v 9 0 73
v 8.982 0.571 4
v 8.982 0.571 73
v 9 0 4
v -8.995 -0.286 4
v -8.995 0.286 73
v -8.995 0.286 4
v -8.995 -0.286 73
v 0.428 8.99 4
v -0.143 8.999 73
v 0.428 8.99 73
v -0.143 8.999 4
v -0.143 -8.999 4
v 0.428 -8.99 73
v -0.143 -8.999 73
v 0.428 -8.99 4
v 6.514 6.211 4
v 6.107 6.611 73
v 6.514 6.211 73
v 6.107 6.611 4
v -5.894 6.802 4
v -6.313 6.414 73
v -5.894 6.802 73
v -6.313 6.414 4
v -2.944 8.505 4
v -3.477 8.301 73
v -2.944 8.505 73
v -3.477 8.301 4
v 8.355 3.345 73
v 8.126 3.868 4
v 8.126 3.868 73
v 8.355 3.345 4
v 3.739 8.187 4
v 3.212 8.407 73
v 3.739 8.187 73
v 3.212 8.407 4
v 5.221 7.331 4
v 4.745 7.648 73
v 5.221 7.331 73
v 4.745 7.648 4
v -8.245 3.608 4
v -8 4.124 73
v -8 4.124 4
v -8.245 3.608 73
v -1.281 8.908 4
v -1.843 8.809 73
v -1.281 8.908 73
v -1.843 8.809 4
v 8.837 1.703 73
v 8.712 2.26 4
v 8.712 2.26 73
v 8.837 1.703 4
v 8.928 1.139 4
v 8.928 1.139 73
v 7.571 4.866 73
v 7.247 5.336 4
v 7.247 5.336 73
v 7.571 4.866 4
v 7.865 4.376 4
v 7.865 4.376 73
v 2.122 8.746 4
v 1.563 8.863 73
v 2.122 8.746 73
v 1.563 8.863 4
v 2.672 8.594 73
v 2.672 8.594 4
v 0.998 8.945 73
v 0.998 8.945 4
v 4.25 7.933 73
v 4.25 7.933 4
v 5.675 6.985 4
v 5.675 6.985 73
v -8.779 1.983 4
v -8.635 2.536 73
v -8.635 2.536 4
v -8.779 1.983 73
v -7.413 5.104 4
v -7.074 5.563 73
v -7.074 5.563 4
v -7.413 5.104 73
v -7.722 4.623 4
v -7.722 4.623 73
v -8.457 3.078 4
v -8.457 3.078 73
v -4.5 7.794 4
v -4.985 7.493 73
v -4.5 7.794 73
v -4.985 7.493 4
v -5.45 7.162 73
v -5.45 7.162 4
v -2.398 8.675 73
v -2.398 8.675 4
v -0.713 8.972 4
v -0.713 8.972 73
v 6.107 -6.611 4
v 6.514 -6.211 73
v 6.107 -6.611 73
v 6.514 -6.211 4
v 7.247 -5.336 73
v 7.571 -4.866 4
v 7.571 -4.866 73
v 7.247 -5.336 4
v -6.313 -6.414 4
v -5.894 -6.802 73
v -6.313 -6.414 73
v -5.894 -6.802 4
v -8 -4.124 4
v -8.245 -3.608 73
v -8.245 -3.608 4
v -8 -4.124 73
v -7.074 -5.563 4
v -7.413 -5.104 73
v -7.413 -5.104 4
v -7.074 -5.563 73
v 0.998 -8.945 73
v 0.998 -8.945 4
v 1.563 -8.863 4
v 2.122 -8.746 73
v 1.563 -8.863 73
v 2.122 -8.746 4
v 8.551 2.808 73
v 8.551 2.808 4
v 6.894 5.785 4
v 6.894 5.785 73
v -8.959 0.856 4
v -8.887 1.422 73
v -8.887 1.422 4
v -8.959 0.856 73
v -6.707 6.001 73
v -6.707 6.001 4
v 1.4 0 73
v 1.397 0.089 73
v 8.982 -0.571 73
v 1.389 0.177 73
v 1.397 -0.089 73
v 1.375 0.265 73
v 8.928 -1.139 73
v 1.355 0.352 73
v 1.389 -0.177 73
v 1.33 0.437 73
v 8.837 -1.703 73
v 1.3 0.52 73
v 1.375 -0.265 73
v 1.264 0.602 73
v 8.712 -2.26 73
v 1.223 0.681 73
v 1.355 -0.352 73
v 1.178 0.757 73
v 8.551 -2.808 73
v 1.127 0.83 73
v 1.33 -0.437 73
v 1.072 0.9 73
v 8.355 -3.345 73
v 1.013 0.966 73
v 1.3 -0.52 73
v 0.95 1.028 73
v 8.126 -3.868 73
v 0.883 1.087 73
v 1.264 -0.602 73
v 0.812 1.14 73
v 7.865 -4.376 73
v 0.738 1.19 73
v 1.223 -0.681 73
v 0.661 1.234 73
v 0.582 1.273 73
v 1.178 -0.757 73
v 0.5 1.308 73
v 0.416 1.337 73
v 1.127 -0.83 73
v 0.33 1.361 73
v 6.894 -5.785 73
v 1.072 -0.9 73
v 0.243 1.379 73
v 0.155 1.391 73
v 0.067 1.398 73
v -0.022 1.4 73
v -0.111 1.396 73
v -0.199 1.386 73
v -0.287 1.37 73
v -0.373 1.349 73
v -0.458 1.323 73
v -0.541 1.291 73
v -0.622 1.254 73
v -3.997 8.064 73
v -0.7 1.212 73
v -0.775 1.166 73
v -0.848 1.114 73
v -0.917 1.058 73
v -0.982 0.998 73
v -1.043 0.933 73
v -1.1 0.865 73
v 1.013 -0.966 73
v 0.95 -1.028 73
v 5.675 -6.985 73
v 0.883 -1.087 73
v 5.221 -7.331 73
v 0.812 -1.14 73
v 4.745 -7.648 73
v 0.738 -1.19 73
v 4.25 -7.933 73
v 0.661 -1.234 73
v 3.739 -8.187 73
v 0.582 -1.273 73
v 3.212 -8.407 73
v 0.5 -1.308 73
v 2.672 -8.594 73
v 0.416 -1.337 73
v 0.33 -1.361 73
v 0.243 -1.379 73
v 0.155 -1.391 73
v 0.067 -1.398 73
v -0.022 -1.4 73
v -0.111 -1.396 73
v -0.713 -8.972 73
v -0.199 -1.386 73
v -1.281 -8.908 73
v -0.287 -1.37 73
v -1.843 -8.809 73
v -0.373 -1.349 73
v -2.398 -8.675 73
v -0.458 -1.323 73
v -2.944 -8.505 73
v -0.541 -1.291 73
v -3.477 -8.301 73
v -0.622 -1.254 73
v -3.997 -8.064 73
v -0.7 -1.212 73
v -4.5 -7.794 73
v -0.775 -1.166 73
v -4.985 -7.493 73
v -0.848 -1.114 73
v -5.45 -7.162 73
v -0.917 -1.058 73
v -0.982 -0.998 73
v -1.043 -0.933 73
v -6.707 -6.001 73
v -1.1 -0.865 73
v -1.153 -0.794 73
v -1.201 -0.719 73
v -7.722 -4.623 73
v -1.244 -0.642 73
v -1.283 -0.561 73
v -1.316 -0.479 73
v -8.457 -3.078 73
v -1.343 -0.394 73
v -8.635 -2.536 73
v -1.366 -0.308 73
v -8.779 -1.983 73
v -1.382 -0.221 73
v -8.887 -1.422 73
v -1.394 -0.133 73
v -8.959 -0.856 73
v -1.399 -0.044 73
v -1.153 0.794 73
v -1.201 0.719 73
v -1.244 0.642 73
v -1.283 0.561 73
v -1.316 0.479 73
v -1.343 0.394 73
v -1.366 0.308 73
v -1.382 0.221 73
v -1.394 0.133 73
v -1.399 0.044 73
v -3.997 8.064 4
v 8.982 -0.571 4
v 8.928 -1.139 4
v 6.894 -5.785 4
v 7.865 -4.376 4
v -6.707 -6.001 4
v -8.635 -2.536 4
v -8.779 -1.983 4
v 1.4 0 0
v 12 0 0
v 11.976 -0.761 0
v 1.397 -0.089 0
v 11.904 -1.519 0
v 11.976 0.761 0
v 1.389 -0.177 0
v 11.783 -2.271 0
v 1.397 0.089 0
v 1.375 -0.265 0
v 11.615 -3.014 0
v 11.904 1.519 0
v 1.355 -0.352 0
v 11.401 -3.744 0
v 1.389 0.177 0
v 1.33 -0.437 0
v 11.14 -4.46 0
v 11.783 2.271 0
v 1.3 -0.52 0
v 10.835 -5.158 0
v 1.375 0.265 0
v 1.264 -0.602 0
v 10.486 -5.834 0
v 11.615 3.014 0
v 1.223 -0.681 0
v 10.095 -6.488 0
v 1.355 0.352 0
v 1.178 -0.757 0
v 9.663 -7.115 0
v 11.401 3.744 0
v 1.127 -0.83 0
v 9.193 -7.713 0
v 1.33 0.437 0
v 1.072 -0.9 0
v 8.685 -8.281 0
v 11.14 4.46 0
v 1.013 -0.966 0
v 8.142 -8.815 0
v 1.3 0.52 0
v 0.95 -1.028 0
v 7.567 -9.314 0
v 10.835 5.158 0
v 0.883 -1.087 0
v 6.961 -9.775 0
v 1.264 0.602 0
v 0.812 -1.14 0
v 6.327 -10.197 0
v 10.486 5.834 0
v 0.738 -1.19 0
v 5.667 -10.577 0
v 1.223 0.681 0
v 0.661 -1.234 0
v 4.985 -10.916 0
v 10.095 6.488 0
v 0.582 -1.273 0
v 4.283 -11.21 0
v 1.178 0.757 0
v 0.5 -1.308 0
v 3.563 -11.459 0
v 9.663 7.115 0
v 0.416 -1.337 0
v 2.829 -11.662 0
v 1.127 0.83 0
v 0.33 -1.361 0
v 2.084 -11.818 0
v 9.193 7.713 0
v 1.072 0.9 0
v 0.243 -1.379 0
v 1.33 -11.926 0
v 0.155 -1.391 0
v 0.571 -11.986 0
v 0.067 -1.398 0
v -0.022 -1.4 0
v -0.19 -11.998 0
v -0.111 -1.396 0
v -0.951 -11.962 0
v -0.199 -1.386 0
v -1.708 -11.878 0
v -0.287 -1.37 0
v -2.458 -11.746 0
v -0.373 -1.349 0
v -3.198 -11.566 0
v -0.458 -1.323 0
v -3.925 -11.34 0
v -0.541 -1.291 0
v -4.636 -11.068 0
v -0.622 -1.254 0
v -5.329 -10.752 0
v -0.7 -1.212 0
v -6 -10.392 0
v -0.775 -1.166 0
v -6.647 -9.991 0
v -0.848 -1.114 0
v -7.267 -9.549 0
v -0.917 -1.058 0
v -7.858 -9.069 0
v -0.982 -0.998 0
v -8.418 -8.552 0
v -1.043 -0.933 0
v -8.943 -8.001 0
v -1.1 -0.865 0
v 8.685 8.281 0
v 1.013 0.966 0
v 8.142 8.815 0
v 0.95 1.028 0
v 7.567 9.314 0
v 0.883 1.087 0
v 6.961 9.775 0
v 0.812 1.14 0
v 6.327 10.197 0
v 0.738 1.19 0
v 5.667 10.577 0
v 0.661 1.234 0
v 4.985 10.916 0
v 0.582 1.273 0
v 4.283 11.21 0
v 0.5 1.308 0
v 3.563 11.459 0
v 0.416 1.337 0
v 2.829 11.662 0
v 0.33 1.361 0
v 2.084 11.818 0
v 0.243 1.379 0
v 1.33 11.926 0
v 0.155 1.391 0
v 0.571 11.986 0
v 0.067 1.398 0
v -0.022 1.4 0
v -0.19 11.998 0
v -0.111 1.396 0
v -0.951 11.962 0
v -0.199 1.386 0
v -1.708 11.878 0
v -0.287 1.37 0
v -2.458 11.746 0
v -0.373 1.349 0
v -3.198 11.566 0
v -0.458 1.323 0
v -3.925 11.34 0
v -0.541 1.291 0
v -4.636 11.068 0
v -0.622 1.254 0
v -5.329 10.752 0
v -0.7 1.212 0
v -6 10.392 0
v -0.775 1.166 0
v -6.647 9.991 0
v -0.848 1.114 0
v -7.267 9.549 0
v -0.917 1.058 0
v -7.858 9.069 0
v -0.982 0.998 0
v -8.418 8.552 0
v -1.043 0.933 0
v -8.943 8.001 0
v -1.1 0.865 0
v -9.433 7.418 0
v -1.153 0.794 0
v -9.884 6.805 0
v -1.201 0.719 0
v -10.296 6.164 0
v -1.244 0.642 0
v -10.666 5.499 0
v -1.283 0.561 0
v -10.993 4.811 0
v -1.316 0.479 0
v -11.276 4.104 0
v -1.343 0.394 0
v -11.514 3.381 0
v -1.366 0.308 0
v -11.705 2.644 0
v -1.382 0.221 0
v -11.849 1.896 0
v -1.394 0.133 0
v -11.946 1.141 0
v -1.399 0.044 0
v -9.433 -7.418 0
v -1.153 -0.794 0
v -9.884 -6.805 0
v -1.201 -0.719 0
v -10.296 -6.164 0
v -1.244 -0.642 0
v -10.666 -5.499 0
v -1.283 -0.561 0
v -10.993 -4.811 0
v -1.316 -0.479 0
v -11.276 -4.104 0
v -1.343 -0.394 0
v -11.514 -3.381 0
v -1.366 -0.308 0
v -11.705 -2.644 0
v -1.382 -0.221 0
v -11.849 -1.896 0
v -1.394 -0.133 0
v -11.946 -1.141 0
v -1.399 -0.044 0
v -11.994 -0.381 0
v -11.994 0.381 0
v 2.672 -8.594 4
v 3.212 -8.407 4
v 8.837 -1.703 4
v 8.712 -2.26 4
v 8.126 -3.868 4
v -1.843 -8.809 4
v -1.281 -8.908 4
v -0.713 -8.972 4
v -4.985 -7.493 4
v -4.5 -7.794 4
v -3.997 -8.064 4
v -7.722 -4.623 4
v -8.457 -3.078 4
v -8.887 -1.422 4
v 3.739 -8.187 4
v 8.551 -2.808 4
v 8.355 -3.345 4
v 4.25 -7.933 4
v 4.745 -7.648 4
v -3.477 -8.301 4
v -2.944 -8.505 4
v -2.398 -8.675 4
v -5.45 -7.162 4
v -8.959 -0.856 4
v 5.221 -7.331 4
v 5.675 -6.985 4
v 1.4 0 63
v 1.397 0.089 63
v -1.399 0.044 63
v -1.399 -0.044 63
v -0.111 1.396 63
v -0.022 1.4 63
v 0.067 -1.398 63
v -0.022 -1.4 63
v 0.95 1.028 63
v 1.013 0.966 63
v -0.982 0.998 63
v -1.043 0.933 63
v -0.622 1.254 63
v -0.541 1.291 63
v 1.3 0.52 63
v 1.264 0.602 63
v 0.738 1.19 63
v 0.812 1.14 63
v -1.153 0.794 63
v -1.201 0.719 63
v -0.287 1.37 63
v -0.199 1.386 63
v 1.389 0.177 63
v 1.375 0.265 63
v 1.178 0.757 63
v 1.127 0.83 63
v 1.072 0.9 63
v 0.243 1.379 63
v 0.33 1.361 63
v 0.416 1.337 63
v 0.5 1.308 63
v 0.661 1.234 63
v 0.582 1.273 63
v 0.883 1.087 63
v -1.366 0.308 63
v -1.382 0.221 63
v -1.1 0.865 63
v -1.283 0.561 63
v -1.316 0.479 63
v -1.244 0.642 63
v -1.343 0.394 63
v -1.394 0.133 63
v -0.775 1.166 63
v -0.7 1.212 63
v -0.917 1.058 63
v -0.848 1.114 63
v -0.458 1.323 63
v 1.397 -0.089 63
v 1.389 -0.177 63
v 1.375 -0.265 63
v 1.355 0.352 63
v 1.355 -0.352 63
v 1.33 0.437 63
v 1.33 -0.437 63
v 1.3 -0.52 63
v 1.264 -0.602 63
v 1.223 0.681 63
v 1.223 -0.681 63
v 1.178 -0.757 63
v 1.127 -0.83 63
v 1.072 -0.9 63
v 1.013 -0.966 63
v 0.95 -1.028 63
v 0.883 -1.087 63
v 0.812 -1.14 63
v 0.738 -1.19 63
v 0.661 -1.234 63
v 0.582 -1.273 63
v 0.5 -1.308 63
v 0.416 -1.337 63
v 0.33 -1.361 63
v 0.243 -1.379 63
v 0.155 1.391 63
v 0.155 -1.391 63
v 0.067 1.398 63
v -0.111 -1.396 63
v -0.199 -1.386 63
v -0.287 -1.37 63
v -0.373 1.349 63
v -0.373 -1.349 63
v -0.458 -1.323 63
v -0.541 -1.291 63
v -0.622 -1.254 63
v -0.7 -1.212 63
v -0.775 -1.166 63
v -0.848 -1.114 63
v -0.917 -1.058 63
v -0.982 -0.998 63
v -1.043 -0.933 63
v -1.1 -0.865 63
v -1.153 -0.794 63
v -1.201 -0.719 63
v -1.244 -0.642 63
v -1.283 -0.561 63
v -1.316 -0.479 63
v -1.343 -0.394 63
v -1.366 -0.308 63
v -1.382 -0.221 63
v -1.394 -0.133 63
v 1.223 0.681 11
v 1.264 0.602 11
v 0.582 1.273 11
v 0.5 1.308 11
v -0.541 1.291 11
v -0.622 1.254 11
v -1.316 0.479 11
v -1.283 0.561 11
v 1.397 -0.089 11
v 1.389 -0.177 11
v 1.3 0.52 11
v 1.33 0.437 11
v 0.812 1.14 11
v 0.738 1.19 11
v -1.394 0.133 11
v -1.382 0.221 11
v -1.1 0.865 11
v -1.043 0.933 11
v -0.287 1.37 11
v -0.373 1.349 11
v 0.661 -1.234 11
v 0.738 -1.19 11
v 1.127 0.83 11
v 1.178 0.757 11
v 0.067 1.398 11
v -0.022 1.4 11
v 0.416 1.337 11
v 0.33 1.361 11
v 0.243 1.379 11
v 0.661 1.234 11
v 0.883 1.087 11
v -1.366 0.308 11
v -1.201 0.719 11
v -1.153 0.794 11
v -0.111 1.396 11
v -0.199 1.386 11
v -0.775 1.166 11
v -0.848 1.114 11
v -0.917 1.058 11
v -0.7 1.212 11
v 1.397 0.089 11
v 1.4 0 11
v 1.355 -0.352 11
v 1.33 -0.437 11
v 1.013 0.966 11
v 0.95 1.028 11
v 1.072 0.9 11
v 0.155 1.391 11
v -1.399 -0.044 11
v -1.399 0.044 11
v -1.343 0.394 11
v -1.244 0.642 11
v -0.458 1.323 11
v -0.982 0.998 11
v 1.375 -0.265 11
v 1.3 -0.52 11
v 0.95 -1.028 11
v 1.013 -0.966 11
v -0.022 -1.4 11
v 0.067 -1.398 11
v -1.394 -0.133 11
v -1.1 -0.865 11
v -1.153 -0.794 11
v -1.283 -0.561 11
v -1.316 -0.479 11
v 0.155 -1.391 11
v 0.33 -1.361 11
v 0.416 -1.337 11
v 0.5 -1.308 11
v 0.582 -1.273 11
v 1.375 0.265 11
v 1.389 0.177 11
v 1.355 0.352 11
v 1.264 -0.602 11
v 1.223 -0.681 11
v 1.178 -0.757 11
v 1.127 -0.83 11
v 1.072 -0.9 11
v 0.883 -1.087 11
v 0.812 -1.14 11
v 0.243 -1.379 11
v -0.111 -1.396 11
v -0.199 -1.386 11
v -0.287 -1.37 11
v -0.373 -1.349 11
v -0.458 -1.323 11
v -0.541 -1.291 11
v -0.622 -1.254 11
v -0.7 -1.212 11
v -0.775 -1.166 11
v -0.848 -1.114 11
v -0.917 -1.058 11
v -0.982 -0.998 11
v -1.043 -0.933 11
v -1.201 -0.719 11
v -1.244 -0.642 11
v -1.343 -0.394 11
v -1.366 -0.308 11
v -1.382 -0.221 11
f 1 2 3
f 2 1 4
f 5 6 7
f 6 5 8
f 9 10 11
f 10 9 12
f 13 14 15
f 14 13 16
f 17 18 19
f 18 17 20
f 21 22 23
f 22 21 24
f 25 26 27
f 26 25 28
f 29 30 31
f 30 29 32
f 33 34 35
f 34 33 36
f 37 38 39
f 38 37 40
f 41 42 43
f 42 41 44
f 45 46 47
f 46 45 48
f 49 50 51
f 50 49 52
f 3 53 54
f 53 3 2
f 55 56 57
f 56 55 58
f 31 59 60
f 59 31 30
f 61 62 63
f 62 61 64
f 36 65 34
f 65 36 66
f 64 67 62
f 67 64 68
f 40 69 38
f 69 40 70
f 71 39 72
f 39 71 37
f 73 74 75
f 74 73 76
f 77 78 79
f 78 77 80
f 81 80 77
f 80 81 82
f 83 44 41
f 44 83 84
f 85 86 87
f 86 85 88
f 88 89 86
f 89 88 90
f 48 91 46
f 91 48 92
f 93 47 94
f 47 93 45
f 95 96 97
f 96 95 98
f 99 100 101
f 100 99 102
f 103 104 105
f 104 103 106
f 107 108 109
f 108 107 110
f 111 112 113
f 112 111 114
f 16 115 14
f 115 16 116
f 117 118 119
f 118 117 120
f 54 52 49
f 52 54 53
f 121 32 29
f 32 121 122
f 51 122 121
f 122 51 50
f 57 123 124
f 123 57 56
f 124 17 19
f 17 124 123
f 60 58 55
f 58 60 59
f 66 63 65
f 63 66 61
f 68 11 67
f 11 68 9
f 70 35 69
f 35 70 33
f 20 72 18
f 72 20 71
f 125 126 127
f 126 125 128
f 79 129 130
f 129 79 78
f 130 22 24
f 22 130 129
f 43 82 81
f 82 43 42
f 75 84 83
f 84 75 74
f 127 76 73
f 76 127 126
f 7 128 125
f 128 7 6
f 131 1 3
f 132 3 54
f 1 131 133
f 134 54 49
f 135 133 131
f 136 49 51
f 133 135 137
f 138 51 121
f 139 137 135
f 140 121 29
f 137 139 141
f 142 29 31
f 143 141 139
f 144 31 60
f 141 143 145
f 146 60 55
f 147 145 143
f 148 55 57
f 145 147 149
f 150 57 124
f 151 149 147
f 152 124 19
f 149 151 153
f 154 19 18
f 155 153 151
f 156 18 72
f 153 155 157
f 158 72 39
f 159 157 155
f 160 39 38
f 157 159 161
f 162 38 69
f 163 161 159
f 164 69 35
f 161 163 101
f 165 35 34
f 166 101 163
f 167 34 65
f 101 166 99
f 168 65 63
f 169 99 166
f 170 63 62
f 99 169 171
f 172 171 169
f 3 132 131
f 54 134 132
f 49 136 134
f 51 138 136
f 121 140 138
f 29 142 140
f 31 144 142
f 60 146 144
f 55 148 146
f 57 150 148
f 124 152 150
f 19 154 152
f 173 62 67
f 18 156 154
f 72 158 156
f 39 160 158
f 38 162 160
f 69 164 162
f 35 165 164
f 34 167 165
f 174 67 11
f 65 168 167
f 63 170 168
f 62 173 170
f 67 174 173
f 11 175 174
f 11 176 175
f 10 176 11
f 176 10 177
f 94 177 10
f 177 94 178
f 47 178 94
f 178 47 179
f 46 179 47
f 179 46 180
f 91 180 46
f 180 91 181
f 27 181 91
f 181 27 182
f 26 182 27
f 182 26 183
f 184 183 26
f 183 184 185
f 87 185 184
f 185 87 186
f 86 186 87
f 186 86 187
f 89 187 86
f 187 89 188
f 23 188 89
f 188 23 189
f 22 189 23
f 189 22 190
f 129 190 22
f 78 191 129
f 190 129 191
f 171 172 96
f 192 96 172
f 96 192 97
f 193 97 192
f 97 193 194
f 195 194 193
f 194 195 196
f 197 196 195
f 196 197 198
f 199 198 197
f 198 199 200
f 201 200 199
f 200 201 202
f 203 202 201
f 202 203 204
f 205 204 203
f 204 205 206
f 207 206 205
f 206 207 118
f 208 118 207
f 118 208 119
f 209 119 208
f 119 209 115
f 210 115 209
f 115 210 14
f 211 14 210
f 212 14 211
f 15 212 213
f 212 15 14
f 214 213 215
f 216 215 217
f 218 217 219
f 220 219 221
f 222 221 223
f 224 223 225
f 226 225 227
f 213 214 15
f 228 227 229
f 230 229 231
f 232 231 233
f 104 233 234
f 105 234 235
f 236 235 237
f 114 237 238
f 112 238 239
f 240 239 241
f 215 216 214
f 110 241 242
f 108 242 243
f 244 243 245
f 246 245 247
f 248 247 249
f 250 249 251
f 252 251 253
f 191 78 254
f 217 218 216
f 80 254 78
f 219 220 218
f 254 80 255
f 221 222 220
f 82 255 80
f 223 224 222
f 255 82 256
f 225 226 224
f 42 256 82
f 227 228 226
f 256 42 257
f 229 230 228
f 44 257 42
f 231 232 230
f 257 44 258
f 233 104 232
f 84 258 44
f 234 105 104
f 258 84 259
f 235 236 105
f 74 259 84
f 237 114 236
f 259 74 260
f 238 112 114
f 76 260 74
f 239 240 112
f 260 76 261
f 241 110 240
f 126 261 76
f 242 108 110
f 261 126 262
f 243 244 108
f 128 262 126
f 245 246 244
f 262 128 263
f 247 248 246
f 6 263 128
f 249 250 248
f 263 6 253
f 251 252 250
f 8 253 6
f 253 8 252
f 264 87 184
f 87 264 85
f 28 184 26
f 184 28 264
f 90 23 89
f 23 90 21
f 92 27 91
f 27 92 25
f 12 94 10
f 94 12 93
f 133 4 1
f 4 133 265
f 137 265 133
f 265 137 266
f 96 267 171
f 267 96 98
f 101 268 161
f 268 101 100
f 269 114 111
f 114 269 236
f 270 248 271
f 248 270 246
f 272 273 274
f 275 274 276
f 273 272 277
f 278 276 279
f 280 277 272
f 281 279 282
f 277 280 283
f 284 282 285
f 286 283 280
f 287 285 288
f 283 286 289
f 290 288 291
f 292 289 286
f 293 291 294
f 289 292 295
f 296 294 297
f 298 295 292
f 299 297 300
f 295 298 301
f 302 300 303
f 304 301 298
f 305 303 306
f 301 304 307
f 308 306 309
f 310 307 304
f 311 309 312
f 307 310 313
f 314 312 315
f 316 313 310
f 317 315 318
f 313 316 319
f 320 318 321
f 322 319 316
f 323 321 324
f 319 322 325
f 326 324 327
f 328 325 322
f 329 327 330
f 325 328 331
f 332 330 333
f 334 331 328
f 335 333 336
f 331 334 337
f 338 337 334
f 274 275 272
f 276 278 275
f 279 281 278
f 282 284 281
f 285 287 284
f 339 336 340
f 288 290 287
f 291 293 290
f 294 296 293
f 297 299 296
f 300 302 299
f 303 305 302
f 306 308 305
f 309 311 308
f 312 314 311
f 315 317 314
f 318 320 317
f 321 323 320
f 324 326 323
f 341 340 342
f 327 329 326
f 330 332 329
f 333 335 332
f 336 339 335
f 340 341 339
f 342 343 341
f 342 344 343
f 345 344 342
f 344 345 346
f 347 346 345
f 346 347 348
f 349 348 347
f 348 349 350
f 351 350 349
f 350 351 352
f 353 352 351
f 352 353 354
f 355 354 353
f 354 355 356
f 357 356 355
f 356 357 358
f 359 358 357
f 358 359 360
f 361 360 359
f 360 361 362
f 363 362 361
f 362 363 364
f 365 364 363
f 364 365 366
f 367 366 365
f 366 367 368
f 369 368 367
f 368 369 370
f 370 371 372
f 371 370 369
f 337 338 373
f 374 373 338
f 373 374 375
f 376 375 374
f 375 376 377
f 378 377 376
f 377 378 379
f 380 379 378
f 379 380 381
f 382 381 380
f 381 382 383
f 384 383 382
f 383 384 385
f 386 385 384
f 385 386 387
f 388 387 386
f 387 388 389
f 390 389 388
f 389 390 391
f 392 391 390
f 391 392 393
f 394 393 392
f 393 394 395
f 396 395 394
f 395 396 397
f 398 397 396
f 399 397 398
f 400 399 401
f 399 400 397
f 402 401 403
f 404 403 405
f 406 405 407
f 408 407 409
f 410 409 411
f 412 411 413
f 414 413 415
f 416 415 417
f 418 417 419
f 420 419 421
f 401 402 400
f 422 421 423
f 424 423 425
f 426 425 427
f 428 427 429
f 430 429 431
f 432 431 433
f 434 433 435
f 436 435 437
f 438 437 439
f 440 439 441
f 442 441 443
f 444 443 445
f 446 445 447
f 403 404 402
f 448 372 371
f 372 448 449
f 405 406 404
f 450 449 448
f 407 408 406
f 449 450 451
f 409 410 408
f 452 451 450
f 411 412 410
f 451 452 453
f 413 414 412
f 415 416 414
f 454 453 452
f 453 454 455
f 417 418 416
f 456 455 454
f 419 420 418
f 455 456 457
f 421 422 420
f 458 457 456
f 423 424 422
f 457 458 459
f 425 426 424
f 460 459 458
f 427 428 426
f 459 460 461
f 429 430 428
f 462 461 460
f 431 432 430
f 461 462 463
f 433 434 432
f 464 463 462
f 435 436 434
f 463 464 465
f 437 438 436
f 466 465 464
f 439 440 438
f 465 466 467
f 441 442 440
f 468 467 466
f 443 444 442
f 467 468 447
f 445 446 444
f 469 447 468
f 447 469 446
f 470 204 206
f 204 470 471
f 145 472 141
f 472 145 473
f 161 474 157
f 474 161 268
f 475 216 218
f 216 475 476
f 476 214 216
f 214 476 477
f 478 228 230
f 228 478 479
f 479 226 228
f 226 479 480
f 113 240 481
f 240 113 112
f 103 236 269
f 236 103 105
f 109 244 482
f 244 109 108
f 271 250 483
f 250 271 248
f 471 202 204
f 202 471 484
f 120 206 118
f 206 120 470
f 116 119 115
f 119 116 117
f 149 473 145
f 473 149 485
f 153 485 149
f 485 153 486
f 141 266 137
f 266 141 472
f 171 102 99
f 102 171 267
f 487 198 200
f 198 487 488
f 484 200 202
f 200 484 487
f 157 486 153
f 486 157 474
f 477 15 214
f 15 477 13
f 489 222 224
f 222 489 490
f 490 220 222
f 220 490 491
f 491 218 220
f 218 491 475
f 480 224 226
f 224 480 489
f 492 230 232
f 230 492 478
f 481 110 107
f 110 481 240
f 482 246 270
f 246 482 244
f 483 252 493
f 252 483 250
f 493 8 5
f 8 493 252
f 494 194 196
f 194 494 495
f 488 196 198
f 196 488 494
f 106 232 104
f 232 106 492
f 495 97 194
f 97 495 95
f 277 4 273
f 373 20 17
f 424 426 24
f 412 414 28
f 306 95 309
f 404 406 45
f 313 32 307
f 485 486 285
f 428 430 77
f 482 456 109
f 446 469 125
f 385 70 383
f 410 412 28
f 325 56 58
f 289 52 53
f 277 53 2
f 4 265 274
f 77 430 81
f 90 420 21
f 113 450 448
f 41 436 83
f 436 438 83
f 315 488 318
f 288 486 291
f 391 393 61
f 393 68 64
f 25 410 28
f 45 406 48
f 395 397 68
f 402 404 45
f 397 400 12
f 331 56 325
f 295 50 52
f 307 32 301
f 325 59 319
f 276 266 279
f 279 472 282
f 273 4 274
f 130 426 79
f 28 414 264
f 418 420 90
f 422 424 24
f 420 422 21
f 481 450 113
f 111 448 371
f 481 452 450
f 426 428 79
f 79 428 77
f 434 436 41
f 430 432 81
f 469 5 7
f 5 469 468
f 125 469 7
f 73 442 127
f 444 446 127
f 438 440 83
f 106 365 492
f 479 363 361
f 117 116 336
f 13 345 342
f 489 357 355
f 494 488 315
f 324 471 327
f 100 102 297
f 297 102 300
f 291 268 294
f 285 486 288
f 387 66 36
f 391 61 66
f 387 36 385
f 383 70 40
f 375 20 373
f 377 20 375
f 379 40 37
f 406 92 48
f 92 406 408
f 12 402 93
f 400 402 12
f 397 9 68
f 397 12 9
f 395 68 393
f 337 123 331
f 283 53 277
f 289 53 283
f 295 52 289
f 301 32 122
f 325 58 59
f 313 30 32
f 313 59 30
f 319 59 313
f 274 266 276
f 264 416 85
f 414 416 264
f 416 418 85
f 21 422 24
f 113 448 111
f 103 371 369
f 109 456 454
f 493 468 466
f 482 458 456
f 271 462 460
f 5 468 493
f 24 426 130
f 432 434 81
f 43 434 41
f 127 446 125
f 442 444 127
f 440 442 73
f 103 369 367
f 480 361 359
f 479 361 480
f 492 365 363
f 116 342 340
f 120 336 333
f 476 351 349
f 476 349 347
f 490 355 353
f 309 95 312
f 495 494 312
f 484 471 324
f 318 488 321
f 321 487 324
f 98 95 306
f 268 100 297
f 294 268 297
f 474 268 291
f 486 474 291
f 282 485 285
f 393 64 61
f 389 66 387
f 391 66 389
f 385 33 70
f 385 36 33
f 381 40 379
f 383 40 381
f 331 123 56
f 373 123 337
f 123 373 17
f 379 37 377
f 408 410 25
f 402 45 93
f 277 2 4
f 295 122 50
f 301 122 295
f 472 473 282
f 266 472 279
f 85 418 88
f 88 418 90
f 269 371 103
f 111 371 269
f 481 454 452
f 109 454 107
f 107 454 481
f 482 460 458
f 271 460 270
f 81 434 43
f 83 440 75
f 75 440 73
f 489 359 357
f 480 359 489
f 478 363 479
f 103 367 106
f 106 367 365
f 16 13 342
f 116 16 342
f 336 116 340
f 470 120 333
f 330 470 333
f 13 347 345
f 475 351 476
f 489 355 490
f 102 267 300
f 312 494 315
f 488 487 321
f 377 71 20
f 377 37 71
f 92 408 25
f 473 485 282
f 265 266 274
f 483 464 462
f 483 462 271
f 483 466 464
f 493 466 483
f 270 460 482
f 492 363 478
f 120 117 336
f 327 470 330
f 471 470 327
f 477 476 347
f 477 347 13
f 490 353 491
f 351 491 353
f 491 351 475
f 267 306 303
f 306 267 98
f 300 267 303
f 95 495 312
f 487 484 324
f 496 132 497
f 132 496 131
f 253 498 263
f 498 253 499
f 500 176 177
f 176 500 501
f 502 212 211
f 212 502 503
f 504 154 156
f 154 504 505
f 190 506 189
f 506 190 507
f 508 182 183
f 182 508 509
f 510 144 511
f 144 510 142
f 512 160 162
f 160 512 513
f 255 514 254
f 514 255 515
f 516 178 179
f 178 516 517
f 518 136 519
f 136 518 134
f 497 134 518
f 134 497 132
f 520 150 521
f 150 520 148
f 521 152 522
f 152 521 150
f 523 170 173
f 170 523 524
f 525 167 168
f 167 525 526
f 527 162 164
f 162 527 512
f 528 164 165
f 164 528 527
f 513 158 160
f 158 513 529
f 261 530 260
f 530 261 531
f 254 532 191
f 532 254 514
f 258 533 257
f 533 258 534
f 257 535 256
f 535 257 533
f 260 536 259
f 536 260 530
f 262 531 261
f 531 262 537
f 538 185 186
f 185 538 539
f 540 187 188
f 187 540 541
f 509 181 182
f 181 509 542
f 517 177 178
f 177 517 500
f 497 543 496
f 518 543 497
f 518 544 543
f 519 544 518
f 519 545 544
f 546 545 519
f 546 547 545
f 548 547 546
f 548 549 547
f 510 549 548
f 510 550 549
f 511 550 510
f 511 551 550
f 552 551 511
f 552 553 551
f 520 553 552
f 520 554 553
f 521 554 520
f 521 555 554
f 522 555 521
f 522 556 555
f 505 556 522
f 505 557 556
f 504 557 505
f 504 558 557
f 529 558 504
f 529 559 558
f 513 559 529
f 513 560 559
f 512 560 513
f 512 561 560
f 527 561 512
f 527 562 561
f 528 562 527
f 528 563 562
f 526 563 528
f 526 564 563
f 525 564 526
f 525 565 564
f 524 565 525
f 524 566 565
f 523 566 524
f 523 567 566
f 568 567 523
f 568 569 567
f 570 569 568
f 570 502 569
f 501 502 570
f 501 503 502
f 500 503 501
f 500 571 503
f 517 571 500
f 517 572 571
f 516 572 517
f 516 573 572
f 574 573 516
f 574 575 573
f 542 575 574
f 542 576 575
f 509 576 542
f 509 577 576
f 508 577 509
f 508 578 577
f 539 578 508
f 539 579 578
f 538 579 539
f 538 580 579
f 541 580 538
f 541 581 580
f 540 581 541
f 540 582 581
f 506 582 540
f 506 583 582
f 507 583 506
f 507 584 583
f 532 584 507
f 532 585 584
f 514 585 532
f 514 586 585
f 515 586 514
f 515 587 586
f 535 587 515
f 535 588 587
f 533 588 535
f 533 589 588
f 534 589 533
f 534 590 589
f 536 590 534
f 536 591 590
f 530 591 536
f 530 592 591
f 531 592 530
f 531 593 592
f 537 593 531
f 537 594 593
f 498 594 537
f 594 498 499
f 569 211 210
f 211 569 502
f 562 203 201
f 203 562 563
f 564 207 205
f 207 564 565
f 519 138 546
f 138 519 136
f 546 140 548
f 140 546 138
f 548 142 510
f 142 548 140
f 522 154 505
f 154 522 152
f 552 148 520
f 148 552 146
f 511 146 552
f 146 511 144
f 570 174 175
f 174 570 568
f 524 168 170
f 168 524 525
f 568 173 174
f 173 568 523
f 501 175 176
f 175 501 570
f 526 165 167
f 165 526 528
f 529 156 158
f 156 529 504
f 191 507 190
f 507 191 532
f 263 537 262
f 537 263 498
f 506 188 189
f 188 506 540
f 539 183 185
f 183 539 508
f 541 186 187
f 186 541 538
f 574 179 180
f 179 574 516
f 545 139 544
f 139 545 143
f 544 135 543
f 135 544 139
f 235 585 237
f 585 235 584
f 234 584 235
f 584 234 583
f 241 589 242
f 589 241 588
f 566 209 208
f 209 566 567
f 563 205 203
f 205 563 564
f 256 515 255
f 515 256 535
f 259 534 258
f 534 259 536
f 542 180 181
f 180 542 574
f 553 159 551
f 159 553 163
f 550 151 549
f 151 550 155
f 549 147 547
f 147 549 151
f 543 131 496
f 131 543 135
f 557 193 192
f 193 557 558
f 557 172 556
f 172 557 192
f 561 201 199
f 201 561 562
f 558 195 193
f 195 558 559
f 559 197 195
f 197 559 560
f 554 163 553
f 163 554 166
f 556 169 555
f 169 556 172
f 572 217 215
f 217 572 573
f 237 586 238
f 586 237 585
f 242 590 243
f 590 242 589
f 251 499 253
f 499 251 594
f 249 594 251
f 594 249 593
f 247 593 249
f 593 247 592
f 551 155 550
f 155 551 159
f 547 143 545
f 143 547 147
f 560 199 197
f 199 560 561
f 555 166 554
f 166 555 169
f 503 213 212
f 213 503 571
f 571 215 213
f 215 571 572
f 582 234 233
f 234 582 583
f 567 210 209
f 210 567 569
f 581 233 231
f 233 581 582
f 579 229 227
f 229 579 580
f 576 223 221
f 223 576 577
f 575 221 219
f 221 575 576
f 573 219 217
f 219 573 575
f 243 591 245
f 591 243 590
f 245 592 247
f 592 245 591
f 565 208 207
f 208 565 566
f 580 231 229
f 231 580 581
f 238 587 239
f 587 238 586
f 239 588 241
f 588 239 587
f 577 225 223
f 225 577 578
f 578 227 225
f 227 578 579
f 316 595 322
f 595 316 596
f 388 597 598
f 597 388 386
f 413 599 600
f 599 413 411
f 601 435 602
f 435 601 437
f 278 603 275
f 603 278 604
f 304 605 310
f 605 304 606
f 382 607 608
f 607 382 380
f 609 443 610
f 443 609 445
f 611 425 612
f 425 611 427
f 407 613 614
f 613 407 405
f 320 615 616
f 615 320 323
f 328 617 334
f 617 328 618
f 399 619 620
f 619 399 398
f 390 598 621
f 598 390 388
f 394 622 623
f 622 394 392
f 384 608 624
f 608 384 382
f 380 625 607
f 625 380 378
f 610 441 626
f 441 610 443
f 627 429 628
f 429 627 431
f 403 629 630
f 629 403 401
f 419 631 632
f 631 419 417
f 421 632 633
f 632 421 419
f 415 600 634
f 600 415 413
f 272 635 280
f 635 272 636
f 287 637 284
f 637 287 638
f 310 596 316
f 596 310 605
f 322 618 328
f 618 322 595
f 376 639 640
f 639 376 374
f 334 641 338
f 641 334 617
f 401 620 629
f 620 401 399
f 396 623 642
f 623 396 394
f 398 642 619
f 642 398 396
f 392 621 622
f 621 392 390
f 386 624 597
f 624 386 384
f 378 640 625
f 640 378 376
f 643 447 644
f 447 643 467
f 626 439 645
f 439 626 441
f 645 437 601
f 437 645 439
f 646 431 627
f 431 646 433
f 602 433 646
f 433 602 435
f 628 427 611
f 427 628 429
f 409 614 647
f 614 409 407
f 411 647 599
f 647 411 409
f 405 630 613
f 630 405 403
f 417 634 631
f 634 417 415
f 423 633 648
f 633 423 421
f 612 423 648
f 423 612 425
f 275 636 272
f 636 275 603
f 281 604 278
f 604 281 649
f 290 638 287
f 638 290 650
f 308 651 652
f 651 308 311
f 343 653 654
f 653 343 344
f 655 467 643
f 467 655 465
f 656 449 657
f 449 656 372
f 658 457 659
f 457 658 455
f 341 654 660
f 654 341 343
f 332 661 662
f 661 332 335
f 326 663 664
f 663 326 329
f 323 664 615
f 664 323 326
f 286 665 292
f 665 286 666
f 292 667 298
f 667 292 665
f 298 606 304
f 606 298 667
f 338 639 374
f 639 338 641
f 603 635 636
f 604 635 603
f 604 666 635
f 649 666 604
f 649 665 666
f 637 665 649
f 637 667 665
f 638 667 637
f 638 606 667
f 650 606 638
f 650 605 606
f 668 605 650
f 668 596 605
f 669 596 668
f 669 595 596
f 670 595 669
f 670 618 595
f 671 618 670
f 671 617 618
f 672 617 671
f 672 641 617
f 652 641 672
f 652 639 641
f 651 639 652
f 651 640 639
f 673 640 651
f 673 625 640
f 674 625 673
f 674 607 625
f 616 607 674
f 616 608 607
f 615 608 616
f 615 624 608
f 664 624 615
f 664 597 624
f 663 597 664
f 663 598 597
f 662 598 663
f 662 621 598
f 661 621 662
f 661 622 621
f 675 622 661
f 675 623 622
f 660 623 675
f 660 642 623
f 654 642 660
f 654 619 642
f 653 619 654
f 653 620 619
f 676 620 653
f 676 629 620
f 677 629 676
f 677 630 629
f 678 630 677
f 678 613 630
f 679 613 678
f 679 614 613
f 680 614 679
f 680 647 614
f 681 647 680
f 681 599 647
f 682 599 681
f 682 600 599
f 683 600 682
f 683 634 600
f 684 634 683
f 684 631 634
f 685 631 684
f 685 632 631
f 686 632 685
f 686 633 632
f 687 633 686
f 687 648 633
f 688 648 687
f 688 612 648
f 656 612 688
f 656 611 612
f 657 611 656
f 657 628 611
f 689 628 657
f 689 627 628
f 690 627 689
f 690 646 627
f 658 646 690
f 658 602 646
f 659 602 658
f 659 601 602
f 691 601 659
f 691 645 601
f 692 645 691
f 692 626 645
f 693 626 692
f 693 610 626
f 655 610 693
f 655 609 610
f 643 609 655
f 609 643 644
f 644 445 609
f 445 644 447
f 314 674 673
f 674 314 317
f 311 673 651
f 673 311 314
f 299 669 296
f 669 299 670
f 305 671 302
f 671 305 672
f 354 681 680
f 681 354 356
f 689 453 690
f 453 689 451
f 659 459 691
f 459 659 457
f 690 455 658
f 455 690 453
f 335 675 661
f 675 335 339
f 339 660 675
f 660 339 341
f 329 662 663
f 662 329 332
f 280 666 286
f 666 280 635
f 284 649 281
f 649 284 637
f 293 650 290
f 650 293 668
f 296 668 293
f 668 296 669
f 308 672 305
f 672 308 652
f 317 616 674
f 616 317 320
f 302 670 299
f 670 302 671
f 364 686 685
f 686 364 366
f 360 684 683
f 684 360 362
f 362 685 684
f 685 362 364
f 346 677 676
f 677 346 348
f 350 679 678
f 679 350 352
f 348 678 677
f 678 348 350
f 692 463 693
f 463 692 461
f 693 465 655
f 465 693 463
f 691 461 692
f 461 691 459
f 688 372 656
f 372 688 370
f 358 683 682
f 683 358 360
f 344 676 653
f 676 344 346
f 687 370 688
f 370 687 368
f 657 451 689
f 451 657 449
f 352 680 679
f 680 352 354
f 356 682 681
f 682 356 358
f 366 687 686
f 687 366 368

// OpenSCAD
$fn=99;
difference (){
    union(){
        cylinder(h = 73, d = 18);
        cylinder(h=4,r1=12,r2=9);
    }

        translate([0,0,63])cylinder(h = 12, d = 2.8);
        translate([0,0,-1])cylinder(h = 12, d = 2.8);
}
